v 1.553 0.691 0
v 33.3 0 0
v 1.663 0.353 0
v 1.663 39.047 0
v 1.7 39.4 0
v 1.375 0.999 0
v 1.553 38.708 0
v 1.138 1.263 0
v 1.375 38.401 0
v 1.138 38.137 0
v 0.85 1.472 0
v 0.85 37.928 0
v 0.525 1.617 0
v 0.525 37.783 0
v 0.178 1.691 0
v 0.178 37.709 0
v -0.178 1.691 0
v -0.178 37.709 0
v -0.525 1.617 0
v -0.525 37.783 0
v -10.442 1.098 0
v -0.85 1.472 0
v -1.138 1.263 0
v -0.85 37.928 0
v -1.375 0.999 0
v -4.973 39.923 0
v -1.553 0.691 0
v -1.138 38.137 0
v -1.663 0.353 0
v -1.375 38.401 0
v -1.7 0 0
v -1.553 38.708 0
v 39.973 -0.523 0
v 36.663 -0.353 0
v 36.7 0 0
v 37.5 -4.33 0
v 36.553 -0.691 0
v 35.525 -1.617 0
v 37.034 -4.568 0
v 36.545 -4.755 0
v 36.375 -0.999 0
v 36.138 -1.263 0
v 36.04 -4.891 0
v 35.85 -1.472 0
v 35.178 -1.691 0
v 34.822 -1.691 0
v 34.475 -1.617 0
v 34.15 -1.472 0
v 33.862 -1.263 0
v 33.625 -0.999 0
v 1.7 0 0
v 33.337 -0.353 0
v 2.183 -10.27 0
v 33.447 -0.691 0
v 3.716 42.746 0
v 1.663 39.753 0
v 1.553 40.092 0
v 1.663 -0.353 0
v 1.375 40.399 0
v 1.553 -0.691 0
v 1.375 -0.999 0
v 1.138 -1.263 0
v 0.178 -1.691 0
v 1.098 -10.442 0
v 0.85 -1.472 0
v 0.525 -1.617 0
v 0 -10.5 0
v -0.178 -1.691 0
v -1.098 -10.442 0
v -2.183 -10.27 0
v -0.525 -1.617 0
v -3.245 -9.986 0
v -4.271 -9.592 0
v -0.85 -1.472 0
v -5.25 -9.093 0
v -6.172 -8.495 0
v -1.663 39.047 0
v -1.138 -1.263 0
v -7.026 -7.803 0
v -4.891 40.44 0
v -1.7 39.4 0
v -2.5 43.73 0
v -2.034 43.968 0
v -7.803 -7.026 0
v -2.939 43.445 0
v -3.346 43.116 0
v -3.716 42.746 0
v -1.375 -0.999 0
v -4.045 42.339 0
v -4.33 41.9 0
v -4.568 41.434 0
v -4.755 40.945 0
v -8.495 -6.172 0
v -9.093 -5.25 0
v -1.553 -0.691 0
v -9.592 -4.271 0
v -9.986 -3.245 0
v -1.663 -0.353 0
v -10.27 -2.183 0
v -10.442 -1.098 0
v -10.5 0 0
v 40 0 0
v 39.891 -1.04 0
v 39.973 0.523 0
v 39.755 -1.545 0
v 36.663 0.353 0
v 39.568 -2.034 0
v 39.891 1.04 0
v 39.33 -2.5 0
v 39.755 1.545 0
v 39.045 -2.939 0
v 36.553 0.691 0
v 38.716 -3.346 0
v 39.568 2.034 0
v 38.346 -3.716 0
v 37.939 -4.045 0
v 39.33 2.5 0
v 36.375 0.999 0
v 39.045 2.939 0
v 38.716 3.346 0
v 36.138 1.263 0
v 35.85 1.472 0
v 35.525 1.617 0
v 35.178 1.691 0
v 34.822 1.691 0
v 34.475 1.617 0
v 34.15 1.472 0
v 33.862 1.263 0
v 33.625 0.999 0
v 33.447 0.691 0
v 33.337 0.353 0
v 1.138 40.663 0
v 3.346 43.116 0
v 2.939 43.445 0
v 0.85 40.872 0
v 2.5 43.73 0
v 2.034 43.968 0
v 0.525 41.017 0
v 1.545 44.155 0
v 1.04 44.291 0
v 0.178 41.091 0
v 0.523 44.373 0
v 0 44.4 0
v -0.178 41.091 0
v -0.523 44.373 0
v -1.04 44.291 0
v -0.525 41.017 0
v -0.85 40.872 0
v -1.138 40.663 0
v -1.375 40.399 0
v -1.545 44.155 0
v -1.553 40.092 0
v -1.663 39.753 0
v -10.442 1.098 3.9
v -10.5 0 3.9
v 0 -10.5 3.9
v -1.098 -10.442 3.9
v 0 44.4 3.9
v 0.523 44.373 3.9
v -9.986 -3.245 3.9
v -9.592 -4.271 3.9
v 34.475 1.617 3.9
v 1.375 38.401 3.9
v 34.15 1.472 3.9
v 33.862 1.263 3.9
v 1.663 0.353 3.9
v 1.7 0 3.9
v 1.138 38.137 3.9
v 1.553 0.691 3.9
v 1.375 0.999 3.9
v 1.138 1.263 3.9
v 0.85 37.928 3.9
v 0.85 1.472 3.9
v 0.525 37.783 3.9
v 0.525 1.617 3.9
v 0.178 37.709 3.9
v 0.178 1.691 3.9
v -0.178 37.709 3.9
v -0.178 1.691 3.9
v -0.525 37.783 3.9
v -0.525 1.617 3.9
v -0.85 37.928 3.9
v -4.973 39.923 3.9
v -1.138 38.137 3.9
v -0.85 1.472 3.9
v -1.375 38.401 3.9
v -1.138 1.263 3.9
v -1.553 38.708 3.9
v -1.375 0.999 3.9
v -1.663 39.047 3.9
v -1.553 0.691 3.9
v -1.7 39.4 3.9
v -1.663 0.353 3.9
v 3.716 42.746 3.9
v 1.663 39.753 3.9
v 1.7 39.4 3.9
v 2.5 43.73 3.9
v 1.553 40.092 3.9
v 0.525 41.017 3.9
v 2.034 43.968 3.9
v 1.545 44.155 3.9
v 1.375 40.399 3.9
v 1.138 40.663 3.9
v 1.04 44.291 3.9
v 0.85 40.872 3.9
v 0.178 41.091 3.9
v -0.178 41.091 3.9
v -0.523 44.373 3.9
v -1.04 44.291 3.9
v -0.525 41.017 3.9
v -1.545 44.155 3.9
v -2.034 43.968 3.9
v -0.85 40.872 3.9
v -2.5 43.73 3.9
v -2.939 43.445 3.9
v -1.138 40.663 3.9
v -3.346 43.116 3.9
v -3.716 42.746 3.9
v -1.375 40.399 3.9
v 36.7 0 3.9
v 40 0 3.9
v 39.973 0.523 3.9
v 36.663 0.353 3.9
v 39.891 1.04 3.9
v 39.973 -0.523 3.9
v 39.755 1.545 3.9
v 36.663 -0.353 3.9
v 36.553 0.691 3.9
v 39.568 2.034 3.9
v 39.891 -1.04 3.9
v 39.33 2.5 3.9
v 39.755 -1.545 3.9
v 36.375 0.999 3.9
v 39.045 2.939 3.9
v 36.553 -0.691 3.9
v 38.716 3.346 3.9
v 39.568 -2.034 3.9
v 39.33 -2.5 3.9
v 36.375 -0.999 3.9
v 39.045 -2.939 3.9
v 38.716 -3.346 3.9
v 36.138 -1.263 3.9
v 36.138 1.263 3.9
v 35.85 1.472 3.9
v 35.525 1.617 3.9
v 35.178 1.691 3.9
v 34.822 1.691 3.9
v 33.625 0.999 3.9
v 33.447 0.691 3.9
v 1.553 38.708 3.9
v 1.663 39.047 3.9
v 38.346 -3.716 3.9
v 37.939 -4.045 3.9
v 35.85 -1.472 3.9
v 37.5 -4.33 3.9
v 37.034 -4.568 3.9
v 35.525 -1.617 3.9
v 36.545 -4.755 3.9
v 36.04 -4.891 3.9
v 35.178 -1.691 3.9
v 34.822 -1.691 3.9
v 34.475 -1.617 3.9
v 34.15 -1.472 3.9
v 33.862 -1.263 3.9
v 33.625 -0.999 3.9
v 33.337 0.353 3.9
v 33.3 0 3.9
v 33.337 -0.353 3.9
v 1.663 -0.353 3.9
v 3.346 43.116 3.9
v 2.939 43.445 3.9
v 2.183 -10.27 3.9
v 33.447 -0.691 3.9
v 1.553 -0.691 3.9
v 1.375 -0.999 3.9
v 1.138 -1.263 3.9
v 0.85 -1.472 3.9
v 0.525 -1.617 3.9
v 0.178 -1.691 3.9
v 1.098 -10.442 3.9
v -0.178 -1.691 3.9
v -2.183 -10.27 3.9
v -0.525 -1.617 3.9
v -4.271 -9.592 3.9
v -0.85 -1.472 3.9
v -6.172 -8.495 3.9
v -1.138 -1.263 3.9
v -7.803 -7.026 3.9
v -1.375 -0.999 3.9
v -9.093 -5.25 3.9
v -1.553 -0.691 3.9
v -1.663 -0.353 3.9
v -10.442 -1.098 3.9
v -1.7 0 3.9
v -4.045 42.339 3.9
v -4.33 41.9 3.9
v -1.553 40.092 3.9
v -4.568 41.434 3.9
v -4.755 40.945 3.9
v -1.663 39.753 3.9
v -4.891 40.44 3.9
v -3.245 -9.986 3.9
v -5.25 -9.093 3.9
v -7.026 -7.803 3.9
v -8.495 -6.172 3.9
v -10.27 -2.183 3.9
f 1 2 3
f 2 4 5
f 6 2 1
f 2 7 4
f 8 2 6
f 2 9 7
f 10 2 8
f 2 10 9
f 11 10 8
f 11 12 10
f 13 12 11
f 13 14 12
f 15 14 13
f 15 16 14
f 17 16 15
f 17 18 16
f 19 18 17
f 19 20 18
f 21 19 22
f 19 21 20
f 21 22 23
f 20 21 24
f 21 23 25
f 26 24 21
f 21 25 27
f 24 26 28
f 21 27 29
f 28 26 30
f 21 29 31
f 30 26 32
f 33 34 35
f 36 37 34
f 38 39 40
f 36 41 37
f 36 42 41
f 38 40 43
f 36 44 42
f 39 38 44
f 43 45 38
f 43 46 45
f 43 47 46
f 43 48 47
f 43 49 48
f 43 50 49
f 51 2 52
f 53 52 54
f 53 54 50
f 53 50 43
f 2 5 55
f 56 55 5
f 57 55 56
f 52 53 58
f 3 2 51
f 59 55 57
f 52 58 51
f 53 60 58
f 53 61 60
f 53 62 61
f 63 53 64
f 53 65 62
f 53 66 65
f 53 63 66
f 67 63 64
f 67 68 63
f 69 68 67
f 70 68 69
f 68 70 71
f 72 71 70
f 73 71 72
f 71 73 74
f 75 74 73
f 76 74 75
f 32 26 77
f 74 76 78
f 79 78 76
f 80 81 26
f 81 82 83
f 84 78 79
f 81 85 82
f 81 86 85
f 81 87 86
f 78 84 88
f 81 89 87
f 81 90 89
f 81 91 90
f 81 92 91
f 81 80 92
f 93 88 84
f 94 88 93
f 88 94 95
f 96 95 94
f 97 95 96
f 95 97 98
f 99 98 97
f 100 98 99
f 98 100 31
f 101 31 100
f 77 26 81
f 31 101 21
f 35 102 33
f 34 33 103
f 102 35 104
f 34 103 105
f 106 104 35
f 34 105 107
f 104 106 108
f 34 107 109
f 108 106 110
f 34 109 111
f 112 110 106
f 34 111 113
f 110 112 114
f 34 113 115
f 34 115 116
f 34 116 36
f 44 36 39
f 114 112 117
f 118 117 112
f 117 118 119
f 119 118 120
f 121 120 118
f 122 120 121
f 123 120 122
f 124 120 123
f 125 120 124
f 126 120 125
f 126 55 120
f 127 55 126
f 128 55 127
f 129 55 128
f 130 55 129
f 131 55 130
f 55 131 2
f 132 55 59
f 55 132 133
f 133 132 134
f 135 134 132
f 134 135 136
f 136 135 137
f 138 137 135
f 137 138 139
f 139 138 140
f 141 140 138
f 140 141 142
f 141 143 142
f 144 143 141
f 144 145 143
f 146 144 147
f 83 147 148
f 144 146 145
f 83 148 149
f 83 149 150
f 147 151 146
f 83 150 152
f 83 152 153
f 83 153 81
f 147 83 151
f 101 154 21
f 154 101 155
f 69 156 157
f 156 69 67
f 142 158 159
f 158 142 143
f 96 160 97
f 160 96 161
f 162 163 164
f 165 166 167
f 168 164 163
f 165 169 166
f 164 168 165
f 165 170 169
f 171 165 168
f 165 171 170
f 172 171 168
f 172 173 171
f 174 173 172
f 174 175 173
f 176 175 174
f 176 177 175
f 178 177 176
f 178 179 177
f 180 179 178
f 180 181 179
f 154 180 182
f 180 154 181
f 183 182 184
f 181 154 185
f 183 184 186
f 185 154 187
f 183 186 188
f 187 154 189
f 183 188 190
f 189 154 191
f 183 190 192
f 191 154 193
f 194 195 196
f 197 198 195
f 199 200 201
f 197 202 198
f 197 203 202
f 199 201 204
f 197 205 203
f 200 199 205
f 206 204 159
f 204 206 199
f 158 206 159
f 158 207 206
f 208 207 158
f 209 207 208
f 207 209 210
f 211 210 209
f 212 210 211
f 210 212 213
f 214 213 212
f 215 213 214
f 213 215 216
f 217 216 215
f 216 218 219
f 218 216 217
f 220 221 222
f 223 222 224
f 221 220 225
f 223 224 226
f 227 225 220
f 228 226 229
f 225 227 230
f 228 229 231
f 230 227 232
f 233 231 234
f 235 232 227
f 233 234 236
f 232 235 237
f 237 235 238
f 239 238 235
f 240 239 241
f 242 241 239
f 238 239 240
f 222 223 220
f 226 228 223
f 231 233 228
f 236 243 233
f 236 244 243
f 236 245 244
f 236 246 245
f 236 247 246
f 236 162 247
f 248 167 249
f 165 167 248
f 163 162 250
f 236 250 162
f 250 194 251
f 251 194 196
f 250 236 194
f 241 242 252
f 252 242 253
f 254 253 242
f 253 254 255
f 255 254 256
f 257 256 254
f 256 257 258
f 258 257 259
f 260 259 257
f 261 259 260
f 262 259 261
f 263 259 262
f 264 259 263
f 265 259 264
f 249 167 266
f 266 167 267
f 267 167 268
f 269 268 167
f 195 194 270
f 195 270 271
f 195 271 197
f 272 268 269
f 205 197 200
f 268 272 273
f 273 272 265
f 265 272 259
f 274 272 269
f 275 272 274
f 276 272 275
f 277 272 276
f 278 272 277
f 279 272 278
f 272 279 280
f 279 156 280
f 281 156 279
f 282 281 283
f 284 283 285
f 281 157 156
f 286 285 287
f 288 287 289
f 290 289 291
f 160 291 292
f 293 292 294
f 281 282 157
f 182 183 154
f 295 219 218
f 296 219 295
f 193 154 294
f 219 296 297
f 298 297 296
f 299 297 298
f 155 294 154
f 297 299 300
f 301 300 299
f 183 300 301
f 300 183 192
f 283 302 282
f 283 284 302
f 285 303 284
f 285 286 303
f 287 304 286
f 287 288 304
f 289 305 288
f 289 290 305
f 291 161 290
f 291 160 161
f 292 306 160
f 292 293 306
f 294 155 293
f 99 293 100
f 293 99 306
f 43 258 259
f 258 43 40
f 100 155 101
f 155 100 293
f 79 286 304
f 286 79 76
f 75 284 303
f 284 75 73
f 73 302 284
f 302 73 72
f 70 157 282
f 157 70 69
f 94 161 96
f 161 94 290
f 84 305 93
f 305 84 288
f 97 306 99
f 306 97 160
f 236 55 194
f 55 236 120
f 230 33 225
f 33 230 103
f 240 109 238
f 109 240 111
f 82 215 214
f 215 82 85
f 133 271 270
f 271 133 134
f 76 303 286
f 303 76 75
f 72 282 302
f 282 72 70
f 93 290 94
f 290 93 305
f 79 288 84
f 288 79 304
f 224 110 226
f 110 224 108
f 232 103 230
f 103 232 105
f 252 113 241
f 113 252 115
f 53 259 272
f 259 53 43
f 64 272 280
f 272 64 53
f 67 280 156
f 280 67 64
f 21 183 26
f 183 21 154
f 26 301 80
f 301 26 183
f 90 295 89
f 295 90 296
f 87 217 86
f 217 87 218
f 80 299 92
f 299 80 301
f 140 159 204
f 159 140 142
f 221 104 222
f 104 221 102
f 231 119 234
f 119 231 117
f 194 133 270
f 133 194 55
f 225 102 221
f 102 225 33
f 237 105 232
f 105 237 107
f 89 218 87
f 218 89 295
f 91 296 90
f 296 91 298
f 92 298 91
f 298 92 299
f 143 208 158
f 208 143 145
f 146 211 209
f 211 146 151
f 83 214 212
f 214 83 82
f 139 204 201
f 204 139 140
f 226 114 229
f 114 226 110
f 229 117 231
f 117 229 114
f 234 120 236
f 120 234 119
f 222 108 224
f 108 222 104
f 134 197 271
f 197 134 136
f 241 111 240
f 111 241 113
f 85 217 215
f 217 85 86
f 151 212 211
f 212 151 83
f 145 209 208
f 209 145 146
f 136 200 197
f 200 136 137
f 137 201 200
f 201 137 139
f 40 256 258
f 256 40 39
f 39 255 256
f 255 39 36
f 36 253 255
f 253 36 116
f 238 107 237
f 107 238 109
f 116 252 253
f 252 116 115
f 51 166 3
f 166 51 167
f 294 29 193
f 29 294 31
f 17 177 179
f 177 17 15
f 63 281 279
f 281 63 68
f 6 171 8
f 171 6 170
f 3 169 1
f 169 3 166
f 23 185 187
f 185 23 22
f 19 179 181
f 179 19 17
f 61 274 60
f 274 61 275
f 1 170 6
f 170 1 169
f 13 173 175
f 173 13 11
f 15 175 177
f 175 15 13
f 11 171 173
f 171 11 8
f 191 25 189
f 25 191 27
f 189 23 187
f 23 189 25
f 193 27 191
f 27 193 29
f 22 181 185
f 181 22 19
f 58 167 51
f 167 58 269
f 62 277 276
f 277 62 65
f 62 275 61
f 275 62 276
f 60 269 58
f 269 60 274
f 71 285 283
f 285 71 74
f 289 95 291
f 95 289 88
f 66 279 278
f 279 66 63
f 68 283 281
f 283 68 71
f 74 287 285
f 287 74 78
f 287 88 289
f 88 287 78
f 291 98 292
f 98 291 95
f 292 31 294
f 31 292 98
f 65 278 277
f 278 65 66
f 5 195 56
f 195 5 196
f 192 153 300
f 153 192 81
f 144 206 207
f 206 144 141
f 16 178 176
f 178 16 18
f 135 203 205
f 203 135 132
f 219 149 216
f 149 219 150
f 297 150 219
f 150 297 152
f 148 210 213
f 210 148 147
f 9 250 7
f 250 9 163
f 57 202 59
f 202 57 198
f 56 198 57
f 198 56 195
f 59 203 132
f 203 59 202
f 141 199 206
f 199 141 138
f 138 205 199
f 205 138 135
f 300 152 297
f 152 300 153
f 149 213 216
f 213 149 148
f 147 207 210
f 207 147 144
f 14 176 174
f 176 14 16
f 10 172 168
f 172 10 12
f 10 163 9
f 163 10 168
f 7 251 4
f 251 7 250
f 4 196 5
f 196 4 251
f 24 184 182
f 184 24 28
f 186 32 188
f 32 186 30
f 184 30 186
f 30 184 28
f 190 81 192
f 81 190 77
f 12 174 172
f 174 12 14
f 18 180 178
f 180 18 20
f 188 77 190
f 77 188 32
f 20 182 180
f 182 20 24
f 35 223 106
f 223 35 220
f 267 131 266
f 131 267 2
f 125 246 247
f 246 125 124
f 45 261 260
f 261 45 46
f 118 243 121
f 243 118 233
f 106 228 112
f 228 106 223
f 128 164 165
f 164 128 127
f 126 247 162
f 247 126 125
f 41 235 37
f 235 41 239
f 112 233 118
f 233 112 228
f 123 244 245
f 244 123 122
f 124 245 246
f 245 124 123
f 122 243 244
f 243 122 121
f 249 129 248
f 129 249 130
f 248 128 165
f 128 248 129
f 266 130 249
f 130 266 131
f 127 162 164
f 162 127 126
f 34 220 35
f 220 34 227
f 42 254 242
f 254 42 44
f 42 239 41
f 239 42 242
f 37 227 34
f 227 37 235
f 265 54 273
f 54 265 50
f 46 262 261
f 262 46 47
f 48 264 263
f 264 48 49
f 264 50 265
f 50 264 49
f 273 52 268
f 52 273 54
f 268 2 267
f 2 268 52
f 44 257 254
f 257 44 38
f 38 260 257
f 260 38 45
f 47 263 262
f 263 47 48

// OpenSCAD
//general
$fn = 30;                  //convexity of general curved faces
thickness = 3.9;             //thickness of arm

//circular servo horn measurements
hornDiameter = 21;             //diameter of the circular horn

//arm specific stuff
armLength =  155;               //horn center to horn center distance for arm length
leverLength = 39.4;             //length of lever bit on end of arm
supportHeight = 35;             //height between the supporting beam and the other beam going to the gripper

pivotDiameter = 10;            //diameter of pivoting end
freeTurning3mm = 3.4;          //diameter of hole for free turning motion

difference(){
   hull(){
      cylinder(d=hornDiameter,h=thickness, $fn = 60);
      translate([0,leverLength,0])
      cylinder(d=pivotDiameter,h=thickness, $fn = 60);
      translate([supportHeight, 0, 0])
      cylinder(d=pivotDiameter, h=thickness, $fn = 60);
   }
   cylinder(d=freeTurning3mm,h=thickness);
   translate([0,leverLength,0])
   cylinder(d=freeTurning3mm,h=thickness);
   translate([supportHeight, 0,0])
   cylinder(d=freeTurning3mm,h=thickness);
}
